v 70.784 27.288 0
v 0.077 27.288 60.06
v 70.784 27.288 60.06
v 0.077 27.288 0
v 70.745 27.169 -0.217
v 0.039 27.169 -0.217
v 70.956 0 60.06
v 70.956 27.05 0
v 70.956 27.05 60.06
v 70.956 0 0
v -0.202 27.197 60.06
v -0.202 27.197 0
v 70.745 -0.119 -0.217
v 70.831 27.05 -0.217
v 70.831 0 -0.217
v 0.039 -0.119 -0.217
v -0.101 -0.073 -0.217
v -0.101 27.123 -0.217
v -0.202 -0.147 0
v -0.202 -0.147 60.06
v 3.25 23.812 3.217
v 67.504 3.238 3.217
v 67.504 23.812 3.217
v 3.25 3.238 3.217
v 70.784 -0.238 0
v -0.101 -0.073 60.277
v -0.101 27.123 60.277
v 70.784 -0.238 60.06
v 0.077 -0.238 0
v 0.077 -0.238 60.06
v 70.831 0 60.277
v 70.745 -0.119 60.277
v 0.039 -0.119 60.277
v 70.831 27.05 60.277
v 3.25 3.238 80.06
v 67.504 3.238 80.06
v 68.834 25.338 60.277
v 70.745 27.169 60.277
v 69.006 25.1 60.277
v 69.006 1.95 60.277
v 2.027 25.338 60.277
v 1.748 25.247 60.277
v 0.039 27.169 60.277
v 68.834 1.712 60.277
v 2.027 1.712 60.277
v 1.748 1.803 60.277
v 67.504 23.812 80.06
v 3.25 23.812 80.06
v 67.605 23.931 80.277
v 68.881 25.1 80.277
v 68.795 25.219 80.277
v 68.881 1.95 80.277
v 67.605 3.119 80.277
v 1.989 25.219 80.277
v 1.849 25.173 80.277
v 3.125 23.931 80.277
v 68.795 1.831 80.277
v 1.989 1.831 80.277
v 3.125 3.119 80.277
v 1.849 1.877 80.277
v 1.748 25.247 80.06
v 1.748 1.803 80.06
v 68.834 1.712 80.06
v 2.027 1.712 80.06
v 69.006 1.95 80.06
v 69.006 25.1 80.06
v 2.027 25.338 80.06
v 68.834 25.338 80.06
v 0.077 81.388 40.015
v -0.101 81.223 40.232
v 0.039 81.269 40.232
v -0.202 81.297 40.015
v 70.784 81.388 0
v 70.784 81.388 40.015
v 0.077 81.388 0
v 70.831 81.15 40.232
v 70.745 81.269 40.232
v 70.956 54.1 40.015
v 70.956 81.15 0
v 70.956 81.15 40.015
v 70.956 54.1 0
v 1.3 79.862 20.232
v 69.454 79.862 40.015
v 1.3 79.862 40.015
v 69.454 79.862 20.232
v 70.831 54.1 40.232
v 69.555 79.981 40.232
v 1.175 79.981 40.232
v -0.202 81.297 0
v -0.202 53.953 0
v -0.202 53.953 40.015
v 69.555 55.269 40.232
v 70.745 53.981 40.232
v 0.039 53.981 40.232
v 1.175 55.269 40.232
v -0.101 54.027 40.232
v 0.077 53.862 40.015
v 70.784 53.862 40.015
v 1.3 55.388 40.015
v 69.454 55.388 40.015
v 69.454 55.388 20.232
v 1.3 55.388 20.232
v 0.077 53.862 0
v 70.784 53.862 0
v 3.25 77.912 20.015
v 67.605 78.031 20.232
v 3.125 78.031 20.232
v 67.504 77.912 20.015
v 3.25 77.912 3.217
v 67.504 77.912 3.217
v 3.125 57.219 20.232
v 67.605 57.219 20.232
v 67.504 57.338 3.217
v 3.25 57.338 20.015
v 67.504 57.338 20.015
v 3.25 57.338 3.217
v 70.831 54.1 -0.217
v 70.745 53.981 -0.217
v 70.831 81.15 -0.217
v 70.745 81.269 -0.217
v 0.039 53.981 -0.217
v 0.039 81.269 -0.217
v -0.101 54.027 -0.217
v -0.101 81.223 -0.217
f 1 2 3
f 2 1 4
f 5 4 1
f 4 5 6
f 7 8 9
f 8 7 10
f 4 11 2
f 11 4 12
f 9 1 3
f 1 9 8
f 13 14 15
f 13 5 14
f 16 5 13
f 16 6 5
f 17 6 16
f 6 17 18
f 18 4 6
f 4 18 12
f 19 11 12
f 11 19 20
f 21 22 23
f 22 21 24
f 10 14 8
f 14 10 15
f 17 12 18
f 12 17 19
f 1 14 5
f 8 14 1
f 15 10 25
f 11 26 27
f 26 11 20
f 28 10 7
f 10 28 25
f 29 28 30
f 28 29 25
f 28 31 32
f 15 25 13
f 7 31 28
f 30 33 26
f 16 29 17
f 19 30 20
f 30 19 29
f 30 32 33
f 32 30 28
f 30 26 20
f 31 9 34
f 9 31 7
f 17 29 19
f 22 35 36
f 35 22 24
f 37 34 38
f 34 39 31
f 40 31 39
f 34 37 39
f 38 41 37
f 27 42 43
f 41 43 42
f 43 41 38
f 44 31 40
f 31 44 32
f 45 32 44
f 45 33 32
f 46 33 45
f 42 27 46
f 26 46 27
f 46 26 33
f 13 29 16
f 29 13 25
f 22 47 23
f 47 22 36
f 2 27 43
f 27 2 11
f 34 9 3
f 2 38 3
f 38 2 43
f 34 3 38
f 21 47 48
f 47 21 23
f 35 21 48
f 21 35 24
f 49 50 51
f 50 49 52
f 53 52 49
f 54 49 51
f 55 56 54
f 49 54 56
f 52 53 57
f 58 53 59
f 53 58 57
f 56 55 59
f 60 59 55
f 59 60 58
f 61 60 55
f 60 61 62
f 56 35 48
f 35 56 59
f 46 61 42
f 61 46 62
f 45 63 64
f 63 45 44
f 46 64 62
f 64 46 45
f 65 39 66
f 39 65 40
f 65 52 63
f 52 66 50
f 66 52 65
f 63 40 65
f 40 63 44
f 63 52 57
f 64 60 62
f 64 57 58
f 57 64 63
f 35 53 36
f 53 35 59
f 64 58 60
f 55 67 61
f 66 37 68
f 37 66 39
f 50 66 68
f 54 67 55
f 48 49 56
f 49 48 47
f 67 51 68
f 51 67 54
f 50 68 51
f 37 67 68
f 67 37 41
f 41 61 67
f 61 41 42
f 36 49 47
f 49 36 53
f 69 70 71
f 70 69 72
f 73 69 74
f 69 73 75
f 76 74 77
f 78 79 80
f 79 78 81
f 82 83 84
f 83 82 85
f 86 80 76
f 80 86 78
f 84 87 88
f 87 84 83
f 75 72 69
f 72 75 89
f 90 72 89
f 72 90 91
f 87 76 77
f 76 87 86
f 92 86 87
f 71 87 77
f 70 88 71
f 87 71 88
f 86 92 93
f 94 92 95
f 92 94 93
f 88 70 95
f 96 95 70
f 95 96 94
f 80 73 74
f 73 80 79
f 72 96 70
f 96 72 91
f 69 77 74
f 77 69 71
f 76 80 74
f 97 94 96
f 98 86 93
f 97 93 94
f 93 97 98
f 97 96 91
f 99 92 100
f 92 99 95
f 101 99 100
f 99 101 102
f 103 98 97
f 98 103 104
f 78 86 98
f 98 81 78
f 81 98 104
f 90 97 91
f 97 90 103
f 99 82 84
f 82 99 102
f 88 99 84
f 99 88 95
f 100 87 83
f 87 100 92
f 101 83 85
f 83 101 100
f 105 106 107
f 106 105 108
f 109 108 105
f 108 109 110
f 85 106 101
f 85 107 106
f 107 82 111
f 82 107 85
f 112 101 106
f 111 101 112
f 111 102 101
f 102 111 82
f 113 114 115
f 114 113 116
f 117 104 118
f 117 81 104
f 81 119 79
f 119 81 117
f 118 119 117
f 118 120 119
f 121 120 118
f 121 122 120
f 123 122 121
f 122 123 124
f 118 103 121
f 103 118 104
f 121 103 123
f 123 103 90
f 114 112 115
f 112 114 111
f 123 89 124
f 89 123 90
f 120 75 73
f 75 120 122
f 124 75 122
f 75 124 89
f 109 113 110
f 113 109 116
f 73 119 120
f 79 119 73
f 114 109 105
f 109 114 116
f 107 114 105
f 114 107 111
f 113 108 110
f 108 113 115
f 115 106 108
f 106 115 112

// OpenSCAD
boxAndLid(2 + 15/32, 0.75, 3 + 5/8);

inchesToMM = 25.4;
ad = 0; // adjustment needed for nice OpenSCAD rendering (0 if using Minkowski sum)

module boxAndLid(width, depth, height, thickness = 3) {

    // convert dimensions from inches to mm and adjust for thickness plus margin
    w =  width * inchesToMM + (2 * thickness) + 2;
    d =  depth * inchesToMM + (2 * thickness) + 2;
    h = height * inchesToMM + (2 * thickness) + 2;
    t = thickness;
    
    dh = h * 0.8; // bottom height proportion
    lh = 20;      // lip height (mm)
    gt = 0.9;     // gap tollerance (mm)

    minkowski() {
        boxBottom(w, d, h, dh, lh, t, gt / 2);
        sphere(0.25);
    }
    
    translate([0, d * 2, 0]) {
        minkowski() {
            boxTop(w, d, h, dh, lh, t, gt - gt / 2);
            sphere(0.25);
        }
    }
}

module boxBottom(w, d, h, dh, lh, t, gt) {
    difference() {
        cube([w, d, dh]);
        translate([t, t, t]) cube([w - 2 * t, d - 2 * t, dh + lh - t + ad]);
        translate([-ad, -ad, dh - lh]) cutout(w + 2 * ad, d + 2 * ad, lh + ad, t / 2, gt);
    }
}

module boxTop(w, d, h, dh, lh, t, gt) {
    union() {
        difference() {
            cube([w, d, (h - dh)]);
            translate([t, t, t]) cube([w - 2 * t, d - 2 * t, h - dh - t + ad]);
        }
        translate([0, 0, (h - dh)]) cutout(w, d, lh, t / 2, -gt);
    }
}

module cutout(w, d, h, t, gt = 0) {
    difference() {
        cube([w, d, h]);
        translate([t + gt, t + gt, -ad]) cube([w - 2 * (t + gt), d - 2 * (t + gt), h + 2 * ad]);
    }
}
